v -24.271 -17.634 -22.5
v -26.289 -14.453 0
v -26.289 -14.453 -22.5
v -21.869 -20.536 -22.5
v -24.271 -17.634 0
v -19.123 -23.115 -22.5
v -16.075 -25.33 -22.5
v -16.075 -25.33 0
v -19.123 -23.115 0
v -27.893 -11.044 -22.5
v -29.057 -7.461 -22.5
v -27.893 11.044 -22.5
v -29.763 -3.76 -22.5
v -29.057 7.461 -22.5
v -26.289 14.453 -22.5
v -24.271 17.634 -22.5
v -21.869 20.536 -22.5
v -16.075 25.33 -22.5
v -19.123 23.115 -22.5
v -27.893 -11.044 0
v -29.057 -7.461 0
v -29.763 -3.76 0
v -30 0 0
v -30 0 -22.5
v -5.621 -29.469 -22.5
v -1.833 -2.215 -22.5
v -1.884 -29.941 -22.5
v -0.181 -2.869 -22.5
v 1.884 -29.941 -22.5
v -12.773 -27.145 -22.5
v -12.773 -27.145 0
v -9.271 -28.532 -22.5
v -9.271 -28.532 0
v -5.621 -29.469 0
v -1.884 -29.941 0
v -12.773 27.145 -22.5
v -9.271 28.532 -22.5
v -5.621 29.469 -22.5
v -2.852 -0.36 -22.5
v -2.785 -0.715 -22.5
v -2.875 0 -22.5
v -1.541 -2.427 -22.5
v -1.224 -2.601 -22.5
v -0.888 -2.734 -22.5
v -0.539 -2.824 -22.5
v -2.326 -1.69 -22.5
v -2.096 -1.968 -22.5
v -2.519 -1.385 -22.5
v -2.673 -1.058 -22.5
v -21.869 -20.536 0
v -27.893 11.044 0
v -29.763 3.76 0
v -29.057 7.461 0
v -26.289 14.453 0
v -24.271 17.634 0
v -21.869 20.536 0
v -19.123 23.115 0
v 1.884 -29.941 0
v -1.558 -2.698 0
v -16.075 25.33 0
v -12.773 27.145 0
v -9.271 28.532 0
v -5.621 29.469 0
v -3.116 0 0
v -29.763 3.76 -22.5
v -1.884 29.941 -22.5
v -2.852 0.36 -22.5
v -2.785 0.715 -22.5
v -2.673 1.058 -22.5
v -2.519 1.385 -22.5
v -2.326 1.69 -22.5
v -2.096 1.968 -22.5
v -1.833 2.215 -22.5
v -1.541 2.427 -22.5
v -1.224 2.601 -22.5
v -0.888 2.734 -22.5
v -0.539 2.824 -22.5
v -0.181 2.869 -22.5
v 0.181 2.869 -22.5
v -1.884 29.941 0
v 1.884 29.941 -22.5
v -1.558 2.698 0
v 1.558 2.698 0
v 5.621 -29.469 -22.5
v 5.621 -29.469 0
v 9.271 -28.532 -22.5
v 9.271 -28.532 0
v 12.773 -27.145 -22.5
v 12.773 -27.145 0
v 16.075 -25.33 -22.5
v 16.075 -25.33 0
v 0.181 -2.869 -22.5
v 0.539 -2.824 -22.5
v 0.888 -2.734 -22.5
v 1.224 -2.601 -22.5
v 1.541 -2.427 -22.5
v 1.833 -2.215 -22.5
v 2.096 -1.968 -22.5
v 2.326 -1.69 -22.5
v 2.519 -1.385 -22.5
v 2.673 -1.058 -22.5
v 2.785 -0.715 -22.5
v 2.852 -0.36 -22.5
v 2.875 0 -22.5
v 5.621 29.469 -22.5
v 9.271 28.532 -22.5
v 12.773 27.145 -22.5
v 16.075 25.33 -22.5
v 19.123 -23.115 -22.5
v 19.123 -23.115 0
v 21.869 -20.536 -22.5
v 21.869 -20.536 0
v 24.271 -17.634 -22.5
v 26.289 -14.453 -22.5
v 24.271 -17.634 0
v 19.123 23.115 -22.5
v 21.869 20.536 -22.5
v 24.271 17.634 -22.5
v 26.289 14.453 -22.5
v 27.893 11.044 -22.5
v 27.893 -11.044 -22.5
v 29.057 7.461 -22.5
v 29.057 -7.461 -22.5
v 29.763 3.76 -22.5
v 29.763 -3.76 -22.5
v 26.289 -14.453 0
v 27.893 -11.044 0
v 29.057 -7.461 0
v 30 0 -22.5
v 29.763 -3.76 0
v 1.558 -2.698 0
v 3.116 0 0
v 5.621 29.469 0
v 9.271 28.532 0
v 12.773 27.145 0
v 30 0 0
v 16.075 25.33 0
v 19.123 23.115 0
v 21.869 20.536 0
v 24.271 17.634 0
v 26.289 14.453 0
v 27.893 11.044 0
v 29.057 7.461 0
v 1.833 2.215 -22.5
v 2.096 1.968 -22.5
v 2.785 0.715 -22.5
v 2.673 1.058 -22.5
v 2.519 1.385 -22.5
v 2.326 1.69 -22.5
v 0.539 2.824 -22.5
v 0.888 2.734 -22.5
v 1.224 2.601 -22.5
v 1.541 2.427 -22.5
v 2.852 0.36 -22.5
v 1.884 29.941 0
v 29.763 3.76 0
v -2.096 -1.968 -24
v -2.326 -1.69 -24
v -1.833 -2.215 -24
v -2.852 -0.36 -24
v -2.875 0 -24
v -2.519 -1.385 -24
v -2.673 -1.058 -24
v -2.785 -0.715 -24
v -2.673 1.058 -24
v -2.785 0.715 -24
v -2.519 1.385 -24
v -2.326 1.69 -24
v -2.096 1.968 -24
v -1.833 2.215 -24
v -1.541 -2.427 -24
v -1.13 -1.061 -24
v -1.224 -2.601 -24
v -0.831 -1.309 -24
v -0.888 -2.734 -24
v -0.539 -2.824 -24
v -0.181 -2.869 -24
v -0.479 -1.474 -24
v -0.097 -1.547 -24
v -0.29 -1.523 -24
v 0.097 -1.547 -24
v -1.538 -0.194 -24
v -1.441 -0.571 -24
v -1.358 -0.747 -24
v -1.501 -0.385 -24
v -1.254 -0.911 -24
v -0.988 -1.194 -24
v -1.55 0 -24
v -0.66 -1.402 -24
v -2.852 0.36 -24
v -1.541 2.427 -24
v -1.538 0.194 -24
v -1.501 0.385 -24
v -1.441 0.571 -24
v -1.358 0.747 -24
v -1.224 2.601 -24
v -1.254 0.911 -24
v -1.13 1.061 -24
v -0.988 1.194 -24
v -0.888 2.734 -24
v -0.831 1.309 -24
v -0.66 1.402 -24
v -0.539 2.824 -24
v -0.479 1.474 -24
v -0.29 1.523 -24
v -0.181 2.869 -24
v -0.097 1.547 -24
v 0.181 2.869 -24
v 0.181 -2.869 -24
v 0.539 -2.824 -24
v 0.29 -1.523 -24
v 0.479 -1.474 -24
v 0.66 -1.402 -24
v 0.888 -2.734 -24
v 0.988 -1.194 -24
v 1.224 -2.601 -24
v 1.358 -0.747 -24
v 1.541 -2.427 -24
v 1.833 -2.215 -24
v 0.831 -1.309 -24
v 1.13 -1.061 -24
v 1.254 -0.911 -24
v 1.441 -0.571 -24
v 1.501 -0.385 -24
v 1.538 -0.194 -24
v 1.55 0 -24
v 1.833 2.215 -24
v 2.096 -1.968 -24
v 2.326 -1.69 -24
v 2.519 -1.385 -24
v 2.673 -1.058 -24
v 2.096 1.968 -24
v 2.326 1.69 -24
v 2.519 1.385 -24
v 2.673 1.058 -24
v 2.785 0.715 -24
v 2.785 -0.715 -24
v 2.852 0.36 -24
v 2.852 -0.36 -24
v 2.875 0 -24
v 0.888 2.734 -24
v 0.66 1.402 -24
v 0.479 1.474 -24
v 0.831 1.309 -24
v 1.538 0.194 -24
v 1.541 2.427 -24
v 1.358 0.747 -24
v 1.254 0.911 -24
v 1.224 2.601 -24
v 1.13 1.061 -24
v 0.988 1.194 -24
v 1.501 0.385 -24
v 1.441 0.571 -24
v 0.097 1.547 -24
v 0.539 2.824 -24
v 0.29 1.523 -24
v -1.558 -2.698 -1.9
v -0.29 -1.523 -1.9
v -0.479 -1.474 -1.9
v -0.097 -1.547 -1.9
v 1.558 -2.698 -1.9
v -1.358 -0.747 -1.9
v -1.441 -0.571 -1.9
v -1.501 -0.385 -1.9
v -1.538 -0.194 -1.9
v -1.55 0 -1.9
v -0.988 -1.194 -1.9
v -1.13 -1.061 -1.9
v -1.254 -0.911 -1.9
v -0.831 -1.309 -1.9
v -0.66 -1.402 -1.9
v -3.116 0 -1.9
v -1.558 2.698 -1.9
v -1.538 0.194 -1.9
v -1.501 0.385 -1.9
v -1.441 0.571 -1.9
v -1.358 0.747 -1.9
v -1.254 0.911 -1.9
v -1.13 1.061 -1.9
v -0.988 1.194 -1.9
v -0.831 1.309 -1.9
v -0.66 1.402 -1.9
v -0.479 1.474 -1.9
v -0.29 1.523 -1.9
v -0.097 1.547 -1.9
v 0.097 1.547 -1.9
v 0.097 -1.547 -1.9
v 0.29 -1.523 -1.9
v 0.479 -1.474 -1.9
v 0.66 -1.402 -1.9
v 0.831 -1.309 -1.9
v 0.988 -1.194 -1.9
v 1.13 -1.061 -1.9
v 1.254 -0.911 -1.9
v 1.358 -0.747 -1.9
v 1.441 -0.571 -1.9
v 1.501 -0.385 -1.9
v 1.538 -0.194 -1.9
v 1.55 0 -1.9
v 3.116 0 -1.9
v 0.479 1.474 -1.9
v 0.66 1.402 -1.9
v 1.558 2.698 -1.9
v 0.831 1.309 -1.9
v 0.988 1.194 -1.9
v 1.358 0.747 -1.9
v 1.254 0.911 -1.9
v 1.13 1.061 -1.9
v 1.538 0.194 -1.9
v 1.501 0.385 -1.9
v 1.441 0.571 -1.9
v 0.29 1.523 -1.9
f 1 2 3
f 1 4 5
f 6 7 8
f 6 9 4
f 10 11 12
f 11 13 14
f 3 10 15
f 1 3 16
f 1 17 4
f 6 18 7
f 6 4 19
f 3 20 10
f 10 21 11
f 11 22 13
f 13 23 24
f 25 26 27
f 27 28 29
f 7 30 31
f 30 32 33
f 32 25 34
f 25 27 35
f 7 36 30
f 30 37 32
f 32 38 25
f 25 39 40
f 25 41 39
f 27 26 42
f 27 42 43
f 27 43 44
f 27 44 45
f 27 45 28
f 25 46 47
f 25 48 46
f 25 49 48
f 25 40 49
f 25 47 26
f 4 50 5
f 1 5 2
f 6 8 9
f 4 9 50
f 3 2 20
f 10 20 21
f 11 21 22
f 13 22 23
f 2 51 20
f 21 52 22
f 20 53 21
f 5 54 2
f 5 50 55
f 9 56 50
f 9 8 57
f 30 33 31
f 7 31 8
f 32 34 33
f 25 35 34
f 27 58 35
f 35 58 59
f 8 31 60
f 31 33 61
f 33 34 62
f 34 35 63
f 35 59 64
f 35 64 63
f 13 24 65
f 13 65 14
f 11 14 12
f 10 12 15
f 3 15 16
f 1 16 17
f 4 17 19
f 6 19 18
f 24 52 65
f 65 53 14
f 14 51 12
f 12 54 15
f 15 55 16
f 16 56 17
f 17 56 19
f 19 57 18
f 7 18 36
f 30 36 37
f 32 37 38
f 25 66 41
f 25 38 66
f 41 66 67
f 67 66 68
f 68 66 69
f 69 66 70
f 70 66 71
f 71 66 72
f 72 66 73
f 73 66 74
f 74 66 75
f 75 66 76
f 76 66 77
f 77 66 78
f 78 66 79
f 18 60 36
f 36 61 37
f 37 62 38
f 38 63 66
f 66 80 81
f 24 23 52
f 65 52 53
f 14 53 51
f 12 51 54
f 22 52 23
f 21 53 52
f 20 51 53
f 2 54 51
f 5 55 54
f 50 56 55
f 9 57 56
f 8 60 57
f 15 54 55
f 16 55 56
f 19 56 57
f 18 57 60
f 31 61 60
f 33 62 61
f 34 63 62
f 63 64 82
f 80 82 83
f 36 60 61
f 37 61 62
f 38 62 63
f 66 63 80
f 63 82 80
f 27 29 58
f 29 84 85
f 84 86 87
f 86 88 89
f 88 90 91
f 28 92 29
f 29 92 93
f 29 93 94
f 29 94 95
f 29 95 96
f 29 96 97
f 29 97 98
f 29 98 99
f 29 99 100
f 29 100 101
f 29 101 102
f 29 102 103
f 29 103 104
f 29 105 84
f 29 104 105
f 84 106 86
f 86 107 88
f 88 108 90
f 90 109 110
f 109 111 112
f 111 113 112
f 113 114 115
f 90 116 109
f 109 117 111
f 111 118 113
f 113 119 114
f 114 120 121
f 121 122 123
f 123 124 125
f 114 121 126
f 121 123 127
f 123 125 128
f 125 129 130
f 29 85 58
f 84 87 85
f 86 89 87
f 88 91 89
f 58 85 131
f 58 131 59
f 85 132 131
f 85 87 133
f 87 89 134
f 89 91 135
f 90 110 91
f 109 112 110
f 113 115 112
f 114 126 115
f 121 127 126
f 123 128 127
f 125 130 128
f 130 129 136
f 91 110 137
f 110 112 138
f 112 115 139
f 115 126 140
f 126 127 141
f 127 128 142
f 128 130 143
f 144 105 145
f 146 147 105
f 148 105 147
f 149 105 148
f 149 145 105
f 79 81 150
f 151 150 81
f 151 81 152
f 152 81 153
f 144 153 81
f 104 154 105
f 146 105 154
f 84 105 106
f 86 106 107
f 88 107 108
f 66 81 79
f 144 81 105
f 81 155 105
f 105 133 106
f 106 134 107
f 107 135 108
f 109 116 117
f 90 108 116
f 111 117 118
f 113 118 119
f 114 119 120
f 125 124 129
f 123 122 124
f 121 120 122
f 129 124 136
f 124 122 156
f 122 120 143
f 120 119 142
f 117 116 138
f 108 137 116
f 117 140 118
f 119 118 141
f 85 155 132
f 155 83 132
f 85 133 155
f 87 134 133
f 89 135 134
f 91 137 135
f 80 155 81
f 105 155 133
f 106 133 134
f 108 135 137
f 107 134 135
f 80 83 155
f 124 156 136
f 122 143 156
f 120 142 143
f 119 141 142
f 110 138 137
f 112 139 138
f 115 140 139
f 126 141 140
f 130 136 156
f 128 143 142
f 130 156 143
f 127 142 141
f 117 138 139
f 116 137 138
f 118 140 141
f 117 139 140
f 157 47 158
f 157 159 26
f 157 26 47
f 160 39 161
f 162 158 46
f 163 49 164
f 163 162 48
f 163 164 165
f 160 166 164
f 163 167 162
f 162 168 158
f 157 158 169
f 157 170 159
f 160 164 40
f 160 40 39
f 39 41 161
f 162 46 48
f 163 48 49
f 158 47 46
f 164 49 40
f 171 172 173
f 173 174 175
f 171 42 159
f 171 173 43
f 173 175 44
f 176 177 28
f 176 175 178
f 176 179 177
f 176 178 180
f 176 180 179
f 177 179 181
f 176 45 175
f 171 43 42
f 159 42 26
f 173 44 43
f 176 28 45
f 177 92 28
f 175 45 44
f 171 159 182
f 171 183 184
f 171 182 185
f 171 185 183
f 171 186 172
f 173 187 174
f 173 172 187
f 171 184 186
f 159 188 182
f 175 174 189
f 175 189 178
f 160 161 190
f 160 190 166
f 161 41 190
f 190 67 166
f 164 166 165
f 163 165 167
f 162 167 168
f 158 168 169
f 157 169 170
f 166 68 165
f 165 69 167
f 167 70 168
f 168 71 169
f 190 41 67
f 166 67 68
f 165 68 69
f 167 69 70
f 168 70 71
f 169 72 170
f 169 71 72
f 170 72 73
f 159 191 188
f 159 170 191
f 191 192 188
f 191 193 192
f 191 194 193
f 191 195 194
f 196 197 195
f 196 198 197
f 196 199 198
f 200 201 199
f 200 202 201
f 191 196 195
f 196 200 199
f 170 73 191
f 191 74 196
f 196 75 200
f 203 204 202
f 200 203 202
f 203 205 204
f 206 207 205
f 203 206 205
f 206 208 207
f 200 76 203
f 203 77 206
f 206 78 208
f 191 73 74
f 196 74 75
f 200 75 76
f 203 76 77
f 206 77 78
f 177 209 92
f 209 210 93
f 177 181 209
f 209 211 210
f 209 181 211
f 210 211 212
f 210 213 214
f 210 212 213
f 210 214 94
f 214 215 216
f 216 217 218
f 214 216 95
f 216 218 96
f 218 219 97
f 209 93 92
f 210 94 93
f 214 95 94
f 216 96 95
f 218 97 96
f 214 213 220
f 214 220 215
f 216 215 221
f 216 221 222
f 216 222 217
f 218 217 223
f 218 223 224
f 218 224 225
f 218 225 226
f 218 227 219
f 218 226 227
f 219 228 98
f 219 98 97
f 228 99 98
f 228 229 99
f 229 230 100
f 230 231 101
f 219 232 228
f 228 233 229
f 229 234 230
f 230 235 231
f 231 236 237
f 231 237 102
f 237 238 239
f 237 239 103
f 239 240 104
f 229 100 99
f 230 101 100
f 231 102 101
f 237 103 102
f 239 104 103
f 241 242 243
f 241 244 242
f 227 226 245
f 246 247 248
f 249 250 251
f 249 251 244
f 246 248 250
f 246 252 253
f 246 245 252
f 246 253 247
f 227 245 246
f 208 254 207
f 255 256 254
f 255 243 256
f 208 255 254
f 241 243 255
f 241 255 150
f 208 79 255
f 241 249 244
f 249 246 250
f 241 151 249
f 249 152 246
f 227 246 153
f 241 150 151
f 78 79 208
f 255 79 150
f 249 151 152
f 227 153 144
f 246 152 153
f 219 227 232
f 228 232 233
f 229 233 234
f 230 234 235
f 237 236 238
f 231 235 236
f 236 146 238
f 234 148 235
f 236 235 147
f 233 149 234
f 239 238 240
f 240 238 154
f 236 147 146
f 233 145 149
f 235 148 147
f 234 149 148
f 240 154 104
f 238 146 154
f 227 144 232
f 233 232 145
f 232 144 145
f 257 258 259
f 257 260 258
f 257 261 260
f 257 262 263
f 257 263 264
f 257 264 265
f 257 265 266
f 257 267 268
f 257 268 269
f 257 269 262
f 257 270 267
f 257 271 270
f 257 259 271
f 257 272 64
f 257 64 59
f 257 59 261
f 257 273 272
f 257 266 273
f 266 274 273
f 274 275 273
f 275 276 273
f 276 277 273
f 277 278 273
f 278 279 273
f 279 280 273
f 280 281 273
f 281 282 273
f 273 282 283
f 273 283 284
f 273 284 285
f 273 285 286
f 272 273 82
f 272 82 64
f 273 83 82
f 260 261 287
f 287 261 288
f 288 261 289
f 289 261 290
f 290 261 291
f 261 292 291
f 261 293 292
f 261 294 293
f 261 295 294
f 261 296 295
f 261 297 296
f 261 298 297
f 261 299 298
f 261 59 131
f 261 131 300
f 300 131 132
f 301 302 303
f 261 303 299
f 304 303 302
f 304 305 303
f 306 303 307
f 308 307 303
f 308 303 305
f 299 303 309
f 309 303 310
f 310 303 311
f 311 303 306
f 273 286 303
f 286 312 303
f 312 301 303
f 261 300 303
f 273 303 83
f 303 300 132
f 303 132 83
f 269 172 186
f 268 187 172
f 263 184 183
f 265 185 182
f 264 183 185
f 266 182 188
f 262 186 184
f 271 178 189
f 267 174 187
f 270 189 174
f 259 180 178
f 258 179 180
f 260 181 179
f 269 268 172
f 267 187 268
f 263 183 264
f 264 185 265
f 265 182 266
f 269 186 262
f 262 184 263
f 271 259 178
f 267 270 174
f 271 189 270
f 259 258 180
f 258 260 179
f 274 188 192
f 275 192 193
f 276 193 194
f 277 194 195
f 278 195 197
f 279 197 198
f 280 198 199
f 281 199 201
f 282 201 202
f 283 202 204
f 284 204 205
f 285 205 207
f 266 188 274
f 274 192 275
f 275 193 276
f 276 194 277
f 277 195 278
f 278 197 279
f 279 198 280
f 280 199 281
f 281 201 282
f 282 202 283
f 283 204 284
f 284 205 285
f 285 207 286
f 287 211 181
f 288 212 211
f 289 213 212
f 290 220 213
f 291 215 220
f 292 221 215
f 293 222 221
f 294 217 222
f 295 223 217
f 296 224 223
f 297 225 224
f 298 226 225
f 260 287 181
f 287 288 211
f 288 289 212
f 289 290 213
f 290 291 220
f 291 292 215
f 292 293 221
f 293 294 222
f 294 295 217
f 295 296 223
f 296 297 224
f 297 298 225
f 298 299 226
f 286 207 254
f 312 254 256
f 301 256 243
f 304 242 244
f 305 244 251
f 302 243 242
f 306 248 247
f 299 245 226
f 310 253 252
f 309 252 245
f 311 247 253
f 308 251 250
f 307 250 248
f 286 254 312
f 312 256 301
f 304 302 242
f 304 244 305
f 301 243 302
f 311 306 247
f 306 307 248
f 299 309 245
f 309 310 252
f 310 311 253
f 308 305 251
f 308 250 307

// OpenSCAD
$fn = 50;

difference() {
	union() {
		translate(v = [0, 0, -22.5]) {
			cylinder(h = 22.5, r = 30.0);
		}
		#translate(v = [0, 0, -24.0]) {
			cylinder(h = 24, r = 2.875);
		}
	}
	union() {
		translate(v = [0, 0, 0]) {
			rotate(a = [0, 0, 0]) {
				difference() {
					union() {
						translate(v = [0, 0, -1.9]) {
							linear_extrude(height = 1.9) {
								polygon(points = [[3.1158, 0.0], [1.5579000000000005, 2.698361953111554], [-1.5578999999999994, 2.6983619531115544], [-3.1158, 3.815754496783323e-16], [-1.5579000000000014, -2.6983619531115535], [1.557899999999998, -2.6983619531115552]]);
							}
						}
					}
					union();
				}
			}
		}
		#translate(v = [0, 0, -100.0]) {
			cylinder(h = 200, r = 1.55);
		}
	}
}
